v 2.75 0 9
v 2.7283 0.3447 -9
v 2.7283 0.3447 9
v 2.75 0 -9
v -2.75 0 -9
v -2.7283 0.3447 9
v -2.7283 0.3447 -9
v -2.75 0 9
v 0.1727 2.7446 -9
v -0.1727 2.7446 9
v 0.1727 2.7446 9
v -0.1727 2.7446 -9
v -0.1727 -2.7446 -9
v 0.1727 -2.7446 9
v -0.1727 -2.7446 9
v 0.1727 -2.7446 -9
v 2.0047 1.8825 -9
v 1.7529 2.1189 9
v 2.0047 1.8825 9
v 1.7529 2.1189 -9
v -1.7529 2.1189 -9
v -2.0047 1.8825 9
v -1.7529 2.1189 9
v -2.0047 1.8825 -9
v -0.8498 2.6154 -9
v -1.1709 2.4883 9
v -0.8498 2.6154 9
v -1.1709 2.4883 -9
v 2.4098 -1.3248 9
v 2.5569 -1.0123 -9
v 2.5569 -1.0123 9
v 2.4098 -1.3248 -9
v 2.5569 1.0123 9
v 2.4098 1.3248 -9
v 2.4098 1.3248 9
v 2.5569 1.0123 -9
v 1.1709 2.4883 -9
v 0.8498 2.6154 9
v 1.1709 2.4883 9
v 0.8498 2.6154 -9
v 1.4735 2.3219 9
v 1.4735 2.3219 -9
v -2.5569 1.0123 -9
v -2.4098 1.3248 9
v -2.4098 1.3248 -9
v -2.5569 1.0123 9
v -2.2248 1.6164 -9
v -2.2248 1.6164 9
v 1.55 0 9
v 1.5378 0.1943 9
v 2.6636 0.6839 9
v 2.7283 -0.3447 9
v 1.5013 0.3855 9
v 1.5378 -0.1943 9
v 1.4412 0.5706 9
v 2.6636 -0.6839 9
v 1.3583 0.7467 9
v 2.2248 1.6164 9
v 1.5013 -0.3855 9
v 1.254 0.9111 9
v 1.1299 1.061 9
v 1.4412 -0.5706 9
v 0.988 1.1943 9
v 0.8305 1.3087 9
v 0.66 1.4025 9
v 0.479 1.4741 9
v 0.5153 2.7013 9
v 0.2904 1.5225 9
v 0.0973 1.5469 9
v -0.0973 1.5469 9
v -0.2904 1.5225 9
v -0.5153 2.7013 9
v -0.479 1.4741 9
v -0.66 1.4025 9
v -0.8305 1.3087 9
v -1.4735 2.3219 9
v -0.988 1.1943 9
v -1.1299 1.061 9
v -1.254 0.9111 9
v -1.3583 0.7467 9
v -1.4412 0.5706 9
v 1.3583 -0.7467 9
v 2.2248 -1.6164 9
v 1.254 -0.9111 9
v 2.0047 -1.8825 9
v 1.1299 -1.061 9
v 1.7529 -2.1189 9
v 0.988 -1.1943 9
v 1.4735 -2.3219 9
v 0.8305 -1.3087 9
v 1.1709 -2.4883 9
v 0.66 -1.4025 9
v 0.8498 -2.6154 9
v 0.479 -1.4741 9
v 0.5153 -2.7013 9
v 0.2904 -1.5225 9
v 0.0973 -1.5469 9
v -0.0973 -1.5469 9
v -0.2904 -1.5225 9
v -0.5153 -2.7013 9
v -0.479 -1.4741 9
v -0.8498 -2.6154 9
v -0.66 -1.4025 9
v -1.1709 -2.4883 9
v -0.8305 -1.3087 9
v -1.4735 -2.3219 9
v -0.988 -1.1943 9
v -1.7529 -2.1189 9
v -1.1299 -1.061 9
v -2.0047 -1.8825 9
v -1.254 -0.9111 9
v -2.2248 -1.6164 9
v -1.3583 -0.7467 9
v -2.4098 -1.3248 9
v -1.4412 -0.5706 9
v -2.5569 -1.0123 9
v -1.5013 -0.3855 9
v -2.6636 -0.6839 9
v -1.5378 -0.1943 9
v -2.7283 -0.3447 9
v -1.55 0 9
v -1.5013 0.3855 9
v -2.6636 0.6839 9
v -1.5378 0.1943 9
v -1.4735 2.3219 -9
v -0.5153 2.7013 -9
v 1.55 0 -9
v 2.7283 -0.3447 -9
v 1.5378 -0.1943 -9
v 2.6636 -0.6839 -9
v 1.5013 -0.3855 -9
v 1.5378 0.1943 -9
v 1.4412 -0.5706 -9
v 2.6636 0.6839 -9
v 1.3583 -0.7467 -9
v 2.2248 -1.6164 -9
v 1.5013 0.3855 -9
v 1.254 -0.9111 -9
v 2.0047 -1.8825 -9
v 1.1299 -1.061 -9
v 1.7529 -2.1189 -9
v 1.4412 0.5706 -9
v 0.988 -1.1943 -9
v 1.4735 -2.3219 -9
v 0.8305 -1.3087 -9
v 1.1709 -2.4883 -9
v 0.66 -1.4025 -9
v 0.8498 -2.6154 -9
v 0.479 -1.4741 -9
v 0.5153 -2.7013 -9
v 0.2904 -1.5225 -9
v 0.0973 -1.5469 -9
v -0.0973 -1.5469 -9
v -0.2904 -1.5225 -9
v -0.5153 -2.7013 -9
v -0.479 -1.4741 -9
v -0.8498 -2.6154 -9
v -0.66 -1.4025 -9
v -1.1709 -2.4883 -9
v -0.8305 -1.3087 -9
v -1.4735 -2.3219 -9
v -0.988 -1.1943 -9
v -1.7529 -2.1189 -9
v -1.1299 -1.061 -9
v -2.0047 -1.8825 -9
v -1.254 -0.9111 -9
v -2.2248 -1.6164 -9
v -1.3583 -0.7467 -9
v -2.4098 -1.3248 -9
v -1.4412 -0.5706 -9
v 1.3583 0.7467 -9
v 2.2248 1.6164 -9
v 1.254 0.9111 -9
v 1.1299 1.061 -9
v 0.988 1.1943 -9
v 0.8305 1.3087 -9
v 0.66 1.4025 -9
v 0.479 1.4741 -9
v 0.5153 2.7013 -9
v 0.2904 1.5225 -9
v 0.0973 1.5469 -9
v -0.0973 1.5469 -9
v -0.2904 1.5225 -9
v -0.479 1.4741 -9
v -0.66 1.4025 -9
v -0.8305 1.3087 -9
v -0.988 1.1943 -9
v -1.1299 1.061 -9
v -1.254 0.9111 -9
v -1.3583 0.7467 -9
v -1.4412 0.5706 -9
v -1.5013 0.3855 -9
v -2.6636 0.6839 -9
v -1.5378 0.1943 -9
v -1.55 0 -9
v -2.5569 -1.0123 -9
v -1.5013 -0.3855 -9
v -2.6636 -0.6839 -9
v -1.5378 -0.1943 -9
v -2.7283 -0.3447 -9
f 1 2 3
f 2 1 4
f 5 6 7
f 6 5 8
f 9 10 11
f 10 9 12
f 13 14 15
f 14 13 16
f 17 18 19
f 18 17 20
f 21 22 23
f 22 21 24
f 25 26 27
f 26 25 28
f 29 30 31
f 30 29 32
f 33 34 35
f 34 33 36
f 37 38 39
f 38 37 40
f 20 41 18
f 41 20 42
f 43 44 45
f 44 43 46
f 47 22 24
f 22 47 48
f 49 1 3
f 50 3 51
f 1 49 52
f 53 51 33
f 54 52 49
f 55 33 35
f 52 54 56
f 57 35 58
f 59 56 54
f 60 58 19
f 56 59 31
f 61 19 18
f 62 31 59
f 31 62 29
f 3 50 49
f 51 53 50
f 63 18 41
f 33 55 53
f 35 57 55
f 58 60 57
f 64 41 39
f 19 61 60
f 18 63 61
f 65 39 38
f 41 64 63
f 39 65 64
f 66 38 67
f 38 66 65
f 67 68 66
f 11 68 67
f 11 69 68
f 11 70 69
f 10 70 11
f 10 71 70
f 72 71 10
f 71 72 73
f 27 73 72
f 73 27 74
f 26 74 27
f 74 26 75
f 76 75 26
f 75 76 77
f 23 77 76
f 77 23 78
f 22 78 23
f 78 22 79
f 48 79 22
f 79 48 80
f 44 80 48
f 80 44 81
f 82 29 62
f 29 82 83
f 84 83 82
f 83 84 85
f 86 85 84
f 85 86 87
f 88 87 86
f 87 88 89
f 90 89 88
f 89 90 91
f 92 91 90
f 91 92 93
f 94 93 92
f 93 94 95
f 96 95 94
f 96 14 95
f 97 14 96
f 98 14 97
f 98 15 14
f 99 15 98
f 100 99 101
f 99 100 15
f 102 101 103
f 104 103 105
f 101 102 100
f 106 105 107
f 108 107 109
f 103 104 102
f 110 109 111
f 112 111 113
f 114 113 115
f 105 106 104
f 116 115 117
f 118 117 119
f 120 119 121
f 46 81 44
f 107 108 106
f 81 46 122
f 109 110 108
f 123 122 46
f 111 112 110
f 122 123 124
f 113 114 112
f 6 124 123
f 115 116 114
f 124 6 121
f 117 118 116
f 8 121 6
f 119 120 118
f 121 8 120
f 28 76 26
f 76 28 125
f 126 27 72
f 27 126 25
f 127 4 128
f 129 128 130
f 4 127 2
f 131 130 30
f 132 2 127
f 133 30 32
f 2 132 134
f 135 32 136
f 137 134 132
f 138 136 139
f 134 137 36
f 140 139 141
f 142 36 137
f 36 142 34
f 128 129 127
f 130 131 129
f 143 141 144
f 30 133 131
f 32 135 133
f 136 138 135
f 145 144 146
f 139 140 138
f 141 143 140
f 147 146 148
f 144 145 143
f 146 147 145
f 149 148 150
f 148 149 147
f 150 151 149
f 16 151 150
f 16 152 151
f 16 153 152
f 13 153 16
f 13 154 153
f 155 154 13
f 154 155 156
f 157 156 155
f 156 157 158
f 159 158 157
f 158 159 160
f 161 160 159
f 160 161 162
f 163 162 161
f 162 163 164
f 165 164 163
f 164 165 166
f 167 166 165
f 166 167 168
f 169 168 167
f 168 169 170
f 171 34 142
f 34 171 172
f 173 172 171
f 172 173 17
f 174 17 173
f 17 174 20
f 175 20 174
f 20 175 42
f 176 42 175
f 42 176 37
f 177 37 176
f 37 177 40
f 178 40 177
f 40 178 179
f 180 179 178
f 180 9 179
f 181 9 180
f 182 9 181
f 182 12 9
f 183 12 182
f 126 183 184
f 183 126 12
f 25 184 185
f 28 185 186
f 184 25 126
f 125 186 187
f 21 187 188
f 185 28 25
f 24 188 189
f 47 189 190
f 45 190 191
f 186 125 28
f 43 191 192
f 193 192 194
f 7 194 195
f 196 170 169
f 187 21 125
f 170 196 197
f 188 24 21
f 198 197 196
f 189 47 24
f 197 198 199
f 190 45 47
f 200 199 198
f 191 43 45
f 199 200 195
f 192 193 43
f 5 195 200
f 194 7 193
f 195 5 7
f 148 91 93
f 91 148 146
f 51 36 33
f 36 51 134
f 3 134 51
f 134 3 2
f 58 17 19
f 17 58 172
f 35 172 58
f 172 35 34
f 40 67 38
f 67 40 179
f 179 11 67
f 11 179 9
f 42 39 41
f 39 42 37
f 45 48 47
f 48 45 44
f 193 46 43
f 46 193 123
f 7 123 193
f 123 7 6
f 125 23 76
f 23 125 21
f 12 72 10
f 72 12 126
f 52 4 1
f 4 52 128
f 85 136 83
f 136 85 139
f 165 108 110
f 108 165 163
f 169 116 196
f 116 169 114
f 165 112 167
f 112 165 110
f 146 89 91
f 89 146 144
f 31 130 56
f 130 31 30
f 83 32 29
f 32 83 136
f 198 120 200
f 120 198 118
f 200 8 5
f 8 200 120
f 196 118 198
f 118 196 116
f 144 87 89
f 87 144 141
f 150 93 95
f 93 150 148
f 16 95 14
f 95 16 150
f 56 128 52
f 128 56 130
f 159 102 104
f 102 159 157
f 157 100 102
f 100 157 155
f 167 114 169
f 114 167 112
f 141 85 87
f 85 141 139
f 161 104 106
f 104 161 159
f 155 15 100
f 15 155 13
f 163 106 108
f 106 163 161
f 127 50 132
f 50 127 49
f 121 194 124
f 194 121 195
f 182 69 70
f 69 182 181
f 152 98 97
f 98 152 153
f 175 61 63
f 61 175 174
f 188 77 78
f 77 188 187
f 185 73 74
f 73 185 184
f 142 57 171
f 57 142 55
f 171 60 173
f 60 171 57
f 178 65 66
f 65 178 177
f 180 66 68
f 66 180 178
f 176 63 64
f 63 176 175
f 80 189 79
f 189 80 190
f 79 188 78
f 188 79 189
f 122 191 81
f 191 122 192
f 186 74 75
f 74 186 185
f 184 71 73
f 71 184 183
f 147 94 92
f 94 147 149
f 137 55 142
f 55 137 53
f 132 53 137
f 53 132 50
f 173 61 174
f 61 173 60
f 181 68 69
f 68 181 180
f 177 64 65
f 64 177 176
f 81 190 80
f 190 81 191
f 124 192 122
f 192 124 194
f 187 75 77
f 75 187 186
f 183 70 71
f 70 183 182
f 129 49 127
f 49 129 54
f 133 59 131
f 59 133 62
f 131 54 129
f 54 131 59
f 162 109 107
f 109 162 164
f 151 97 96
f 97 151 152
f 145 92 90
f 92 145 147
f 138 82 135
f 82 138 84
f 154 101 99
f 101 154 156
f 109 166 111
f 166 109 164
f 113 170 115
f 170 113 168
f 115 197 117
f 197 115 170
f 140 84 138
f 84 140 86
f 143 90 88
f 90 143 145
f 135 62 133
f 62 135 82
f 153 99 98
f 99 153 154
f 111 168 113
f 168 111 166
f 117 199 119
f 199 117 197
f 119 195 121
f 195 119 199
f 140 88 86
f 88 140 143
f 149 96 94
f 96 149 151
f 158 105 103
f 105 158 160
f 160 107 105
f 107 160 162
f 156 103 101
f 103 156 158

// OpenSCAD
$fn = 50;


difference() {
	union() {
		translate(v = [0, 0, -9.0000000000]) {
			cylinder(h = 18, r = 2.7500000000);
		}
	}
	union() {
		translate(v = [0, 0, -100.0000000000]) {
			cylinder(h = 200, r = 1.5500000000);
		}
	}
}
